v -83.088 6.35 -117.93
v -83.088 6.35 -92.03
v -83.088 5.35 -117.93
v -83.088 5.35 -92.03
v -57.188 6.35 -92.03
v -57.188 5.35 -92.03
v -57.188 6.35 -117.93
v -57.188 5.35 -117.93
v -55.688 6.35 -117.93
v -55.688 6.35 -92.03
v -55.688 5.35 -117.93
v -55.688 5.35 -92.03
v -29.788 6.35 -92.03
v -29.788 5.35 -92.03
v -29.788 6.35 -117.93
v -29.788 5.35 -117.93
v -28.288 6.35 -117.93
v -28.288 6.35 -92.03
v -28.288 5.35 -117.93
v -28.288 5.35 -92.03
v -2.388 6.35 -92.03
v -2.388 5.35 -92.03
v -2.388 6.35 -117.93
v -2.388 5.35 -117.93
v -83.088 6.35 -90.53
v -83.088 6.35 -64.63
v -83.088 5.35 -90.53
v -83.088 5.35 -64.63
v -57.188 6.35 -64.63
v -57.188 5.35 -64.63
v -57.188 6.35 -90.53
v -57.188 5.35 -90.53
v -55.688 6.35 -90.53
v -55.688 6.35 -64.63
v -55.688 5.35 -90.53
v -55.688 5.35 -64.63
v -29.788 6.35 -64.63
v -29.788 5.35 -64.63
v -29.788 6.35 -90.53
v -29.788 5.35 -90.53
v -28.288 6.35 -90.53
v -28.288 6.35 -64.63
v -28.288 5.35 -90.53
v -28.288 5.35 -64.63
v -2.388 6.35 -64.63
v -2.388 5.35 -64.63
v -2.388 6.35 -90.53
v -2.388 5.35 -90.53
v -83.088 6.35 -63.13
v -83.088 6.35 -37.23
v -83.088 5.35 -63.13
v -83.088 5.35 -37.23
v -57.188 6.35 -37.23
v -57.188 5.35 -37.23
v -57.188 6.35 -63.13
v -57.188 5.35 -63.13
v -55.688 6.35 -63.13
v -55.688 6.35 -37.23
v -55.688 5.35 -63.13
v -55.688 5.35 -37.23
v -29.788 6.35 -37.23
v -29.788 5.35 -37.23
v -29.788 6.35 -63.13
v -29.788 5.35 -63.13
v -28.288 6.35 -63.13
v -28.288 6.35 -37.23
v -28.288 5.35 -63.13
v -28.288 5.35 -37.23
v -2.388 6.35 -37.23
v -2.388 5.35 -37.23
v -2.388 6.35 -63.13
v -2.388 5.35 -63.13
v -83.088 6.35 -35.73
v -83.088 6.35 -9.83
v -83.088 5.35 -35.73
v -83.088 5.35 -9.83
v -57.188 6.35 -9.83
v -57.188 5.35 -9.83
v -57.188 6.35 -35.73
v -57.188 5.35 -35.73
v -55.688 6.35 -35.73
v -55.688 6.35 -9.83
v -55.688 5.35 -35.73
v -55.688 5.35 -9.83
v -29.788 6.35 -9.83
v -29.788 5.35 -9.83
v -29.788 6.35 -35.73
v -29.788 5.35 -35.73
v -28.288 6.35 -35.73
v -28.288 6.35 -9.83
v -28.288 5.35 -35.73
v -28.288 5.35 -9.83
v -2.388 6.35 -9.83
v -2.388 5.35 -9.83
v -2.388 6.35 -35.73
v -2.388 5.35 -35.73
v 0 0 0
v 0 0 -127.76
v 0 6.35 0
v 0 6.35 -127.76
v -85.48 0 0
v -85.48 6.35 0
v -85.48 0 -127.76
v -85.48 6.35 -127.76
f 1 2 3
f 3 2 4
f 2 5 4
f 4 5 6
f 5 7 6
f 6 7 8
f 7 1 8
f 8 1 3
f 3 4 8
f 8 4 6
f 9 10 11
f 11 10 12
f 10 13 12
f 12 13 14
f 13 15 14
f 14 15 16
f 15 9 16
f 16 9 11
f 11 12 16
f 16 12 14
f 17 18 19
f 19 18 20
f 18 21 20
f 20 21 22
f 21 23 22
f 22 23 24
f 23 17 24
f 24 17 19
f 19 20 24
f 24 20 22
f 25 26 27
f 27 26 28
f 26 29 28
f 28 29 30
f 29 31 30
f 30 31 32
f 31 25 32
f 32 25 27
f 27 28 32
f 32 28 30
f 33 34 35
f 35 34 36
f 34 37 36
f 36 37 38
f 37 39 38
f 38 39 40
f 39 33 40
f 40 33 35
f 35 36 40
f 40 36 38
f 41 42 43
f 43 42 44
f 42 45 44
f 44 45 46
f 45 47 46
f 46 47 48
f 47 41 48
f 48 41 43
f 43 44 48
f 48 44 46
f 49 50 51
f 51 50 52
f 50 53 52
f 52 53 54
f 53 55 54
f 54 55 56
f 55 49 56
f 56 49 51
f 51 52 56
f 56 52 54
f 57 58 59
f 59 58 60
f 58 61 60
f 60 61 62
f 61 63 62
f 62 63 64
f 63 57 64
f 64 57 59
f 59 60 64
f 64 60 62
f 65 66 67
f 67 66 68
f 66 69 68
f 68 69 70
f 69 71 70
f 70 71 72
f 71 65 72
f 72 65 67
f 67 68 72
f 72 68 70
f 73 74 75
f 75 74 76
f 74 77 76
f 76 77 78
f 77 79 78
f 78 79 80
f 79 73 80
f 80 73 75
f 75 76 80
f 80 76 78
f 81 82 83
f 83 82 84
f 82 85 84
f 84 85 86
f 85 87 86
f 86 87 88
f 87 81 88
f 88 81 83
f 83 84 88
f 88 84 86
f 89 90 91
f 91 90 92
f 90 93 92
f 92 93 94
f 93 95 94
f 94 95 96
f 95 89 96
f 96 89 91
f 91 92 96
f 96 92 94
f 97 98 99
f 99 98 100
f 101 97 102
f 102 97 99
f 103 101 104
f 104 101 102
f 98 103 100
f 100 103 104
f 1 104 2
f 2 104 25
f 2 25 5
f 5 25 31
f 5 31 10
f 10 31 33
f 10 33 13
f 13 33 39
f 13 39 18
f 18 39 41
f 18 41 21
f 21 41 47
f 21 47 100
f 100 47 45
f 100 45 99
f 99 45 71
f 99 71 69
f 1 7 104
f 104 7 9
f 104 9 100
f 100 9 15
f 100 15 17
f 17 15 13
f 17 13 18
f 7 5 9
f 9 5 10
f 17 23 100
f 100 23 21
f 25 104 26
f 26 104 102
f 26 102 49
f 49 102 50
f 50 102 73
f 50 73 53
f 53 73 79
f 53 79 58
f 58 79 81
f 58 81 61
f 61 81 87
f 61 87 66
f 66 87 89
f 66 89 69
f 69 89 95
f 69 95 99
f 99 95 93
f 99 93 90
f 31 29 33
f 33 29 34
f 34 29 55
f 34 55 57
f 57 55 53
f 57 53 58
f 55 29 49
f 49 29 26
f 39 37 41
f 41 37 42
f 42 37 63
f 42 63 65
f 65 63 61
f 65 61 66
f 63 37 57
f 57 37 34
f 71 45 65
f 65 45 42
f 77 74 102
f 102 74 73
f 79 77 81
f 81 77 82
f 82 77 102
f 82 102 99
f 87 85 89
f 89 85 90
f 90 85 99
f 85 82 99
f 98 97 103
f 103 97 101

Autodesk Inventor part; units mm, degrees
ref_plane "YZ Plane" through (0, 0, 0) normal (1, 0, 0) x (0, 1, 0)
ref_plane "XZ Plane" through (0, 0, 0) normal (0, 1, 0) x (-1, 0, 0)
ref_plane "XY Plane" through (0, 0, 0) normal (0, 0, 1) x (1, 0, 0)
sketch "Sketch1" plane through (0, 0, 0) normal (0, 1, 0) x (-1, 0, 0)
  line L0 (0, 0) -> (85.48, 0)
  line L1 (85.48, 0) -> (85.48, -127.76)
  line L2 (85.48, -127.76) -> (0, -127.76)
  line L3 (0, -127.76) -> (0, 0)
  line L4 (0, 0) -> (7.0711, -7.0711)
  line L5 (0, 0) -> (10, 0) construction
  circle A0 centre (7.0711, -7.0711) radius 4.7625
  dimension "d0" = 85.48
  dimension "d1" = 127.76
  dimension "offsetDiag" = 10
  dimension "d3" = 45
  dimension "d4" = 9.525
extrude "Extrusion1" add sketch "Sketch1" along normal blind 6.35 contours L0 L1 L2 L3 | A0
sketch "Sketch3" plane through (0, 6.35, 0) normal (0, 1, 0) x (1, 0, 0)
  line L0 (0, 0) -> (0, 127.76) projected
  line L1 (0, 0) -> (-2.3876, 0)
  line L2 (-2.3876, 0) -> (-2.3876, 9.8298)
  line L3 (-2.3876, 9.8298) -> (0, 9.8298)
  line L4 (0, 9.8298) -> (0, 0)
  line L5 (-2.3876, 9.8298) -> (-28.2876, 9.8298)
  line L6 (-28.2876, 9.8298) -> (-28.2876, 35.7298)
  line L7 (-28.2876, 35.7298) -> (-2.3876, 35.7298)
  line L8 (-2.3876, 35.7298) -> (-2.3876, 9.8298)
  line L9 (-28.2876, 35.7298) -> (-29.2876, 35.7298)
  line L10 (-29.2876, 35.7298) -> (-29.2876, 36.7298)
  line L11 (-29.2876, 36.7298) -> (-28.2876, 36.7298)
  line L12 (-28.2876, 36.7298) -> (-28.2876, 35.7298)
  dimension "d23" = 2.3876
  dimension "d24" = 9.8298
  dimension "d25" = 25.9
  dimension "d26" = 25.9
  dimension "d27" = 1
  dimension "d28" = 1
extrude "Extrusion2" cut sketch "Sketch3" against normal blind 1 contours L5 L6 L7 L8
pattern_linear "Rectangular Pattern2" count 3 spacing 27.4 along (-1, 0, 0) count 4 spacing 27.4 along (0, 0, -1) of "Extrusion2"
properties part number "inch substrate rack"
